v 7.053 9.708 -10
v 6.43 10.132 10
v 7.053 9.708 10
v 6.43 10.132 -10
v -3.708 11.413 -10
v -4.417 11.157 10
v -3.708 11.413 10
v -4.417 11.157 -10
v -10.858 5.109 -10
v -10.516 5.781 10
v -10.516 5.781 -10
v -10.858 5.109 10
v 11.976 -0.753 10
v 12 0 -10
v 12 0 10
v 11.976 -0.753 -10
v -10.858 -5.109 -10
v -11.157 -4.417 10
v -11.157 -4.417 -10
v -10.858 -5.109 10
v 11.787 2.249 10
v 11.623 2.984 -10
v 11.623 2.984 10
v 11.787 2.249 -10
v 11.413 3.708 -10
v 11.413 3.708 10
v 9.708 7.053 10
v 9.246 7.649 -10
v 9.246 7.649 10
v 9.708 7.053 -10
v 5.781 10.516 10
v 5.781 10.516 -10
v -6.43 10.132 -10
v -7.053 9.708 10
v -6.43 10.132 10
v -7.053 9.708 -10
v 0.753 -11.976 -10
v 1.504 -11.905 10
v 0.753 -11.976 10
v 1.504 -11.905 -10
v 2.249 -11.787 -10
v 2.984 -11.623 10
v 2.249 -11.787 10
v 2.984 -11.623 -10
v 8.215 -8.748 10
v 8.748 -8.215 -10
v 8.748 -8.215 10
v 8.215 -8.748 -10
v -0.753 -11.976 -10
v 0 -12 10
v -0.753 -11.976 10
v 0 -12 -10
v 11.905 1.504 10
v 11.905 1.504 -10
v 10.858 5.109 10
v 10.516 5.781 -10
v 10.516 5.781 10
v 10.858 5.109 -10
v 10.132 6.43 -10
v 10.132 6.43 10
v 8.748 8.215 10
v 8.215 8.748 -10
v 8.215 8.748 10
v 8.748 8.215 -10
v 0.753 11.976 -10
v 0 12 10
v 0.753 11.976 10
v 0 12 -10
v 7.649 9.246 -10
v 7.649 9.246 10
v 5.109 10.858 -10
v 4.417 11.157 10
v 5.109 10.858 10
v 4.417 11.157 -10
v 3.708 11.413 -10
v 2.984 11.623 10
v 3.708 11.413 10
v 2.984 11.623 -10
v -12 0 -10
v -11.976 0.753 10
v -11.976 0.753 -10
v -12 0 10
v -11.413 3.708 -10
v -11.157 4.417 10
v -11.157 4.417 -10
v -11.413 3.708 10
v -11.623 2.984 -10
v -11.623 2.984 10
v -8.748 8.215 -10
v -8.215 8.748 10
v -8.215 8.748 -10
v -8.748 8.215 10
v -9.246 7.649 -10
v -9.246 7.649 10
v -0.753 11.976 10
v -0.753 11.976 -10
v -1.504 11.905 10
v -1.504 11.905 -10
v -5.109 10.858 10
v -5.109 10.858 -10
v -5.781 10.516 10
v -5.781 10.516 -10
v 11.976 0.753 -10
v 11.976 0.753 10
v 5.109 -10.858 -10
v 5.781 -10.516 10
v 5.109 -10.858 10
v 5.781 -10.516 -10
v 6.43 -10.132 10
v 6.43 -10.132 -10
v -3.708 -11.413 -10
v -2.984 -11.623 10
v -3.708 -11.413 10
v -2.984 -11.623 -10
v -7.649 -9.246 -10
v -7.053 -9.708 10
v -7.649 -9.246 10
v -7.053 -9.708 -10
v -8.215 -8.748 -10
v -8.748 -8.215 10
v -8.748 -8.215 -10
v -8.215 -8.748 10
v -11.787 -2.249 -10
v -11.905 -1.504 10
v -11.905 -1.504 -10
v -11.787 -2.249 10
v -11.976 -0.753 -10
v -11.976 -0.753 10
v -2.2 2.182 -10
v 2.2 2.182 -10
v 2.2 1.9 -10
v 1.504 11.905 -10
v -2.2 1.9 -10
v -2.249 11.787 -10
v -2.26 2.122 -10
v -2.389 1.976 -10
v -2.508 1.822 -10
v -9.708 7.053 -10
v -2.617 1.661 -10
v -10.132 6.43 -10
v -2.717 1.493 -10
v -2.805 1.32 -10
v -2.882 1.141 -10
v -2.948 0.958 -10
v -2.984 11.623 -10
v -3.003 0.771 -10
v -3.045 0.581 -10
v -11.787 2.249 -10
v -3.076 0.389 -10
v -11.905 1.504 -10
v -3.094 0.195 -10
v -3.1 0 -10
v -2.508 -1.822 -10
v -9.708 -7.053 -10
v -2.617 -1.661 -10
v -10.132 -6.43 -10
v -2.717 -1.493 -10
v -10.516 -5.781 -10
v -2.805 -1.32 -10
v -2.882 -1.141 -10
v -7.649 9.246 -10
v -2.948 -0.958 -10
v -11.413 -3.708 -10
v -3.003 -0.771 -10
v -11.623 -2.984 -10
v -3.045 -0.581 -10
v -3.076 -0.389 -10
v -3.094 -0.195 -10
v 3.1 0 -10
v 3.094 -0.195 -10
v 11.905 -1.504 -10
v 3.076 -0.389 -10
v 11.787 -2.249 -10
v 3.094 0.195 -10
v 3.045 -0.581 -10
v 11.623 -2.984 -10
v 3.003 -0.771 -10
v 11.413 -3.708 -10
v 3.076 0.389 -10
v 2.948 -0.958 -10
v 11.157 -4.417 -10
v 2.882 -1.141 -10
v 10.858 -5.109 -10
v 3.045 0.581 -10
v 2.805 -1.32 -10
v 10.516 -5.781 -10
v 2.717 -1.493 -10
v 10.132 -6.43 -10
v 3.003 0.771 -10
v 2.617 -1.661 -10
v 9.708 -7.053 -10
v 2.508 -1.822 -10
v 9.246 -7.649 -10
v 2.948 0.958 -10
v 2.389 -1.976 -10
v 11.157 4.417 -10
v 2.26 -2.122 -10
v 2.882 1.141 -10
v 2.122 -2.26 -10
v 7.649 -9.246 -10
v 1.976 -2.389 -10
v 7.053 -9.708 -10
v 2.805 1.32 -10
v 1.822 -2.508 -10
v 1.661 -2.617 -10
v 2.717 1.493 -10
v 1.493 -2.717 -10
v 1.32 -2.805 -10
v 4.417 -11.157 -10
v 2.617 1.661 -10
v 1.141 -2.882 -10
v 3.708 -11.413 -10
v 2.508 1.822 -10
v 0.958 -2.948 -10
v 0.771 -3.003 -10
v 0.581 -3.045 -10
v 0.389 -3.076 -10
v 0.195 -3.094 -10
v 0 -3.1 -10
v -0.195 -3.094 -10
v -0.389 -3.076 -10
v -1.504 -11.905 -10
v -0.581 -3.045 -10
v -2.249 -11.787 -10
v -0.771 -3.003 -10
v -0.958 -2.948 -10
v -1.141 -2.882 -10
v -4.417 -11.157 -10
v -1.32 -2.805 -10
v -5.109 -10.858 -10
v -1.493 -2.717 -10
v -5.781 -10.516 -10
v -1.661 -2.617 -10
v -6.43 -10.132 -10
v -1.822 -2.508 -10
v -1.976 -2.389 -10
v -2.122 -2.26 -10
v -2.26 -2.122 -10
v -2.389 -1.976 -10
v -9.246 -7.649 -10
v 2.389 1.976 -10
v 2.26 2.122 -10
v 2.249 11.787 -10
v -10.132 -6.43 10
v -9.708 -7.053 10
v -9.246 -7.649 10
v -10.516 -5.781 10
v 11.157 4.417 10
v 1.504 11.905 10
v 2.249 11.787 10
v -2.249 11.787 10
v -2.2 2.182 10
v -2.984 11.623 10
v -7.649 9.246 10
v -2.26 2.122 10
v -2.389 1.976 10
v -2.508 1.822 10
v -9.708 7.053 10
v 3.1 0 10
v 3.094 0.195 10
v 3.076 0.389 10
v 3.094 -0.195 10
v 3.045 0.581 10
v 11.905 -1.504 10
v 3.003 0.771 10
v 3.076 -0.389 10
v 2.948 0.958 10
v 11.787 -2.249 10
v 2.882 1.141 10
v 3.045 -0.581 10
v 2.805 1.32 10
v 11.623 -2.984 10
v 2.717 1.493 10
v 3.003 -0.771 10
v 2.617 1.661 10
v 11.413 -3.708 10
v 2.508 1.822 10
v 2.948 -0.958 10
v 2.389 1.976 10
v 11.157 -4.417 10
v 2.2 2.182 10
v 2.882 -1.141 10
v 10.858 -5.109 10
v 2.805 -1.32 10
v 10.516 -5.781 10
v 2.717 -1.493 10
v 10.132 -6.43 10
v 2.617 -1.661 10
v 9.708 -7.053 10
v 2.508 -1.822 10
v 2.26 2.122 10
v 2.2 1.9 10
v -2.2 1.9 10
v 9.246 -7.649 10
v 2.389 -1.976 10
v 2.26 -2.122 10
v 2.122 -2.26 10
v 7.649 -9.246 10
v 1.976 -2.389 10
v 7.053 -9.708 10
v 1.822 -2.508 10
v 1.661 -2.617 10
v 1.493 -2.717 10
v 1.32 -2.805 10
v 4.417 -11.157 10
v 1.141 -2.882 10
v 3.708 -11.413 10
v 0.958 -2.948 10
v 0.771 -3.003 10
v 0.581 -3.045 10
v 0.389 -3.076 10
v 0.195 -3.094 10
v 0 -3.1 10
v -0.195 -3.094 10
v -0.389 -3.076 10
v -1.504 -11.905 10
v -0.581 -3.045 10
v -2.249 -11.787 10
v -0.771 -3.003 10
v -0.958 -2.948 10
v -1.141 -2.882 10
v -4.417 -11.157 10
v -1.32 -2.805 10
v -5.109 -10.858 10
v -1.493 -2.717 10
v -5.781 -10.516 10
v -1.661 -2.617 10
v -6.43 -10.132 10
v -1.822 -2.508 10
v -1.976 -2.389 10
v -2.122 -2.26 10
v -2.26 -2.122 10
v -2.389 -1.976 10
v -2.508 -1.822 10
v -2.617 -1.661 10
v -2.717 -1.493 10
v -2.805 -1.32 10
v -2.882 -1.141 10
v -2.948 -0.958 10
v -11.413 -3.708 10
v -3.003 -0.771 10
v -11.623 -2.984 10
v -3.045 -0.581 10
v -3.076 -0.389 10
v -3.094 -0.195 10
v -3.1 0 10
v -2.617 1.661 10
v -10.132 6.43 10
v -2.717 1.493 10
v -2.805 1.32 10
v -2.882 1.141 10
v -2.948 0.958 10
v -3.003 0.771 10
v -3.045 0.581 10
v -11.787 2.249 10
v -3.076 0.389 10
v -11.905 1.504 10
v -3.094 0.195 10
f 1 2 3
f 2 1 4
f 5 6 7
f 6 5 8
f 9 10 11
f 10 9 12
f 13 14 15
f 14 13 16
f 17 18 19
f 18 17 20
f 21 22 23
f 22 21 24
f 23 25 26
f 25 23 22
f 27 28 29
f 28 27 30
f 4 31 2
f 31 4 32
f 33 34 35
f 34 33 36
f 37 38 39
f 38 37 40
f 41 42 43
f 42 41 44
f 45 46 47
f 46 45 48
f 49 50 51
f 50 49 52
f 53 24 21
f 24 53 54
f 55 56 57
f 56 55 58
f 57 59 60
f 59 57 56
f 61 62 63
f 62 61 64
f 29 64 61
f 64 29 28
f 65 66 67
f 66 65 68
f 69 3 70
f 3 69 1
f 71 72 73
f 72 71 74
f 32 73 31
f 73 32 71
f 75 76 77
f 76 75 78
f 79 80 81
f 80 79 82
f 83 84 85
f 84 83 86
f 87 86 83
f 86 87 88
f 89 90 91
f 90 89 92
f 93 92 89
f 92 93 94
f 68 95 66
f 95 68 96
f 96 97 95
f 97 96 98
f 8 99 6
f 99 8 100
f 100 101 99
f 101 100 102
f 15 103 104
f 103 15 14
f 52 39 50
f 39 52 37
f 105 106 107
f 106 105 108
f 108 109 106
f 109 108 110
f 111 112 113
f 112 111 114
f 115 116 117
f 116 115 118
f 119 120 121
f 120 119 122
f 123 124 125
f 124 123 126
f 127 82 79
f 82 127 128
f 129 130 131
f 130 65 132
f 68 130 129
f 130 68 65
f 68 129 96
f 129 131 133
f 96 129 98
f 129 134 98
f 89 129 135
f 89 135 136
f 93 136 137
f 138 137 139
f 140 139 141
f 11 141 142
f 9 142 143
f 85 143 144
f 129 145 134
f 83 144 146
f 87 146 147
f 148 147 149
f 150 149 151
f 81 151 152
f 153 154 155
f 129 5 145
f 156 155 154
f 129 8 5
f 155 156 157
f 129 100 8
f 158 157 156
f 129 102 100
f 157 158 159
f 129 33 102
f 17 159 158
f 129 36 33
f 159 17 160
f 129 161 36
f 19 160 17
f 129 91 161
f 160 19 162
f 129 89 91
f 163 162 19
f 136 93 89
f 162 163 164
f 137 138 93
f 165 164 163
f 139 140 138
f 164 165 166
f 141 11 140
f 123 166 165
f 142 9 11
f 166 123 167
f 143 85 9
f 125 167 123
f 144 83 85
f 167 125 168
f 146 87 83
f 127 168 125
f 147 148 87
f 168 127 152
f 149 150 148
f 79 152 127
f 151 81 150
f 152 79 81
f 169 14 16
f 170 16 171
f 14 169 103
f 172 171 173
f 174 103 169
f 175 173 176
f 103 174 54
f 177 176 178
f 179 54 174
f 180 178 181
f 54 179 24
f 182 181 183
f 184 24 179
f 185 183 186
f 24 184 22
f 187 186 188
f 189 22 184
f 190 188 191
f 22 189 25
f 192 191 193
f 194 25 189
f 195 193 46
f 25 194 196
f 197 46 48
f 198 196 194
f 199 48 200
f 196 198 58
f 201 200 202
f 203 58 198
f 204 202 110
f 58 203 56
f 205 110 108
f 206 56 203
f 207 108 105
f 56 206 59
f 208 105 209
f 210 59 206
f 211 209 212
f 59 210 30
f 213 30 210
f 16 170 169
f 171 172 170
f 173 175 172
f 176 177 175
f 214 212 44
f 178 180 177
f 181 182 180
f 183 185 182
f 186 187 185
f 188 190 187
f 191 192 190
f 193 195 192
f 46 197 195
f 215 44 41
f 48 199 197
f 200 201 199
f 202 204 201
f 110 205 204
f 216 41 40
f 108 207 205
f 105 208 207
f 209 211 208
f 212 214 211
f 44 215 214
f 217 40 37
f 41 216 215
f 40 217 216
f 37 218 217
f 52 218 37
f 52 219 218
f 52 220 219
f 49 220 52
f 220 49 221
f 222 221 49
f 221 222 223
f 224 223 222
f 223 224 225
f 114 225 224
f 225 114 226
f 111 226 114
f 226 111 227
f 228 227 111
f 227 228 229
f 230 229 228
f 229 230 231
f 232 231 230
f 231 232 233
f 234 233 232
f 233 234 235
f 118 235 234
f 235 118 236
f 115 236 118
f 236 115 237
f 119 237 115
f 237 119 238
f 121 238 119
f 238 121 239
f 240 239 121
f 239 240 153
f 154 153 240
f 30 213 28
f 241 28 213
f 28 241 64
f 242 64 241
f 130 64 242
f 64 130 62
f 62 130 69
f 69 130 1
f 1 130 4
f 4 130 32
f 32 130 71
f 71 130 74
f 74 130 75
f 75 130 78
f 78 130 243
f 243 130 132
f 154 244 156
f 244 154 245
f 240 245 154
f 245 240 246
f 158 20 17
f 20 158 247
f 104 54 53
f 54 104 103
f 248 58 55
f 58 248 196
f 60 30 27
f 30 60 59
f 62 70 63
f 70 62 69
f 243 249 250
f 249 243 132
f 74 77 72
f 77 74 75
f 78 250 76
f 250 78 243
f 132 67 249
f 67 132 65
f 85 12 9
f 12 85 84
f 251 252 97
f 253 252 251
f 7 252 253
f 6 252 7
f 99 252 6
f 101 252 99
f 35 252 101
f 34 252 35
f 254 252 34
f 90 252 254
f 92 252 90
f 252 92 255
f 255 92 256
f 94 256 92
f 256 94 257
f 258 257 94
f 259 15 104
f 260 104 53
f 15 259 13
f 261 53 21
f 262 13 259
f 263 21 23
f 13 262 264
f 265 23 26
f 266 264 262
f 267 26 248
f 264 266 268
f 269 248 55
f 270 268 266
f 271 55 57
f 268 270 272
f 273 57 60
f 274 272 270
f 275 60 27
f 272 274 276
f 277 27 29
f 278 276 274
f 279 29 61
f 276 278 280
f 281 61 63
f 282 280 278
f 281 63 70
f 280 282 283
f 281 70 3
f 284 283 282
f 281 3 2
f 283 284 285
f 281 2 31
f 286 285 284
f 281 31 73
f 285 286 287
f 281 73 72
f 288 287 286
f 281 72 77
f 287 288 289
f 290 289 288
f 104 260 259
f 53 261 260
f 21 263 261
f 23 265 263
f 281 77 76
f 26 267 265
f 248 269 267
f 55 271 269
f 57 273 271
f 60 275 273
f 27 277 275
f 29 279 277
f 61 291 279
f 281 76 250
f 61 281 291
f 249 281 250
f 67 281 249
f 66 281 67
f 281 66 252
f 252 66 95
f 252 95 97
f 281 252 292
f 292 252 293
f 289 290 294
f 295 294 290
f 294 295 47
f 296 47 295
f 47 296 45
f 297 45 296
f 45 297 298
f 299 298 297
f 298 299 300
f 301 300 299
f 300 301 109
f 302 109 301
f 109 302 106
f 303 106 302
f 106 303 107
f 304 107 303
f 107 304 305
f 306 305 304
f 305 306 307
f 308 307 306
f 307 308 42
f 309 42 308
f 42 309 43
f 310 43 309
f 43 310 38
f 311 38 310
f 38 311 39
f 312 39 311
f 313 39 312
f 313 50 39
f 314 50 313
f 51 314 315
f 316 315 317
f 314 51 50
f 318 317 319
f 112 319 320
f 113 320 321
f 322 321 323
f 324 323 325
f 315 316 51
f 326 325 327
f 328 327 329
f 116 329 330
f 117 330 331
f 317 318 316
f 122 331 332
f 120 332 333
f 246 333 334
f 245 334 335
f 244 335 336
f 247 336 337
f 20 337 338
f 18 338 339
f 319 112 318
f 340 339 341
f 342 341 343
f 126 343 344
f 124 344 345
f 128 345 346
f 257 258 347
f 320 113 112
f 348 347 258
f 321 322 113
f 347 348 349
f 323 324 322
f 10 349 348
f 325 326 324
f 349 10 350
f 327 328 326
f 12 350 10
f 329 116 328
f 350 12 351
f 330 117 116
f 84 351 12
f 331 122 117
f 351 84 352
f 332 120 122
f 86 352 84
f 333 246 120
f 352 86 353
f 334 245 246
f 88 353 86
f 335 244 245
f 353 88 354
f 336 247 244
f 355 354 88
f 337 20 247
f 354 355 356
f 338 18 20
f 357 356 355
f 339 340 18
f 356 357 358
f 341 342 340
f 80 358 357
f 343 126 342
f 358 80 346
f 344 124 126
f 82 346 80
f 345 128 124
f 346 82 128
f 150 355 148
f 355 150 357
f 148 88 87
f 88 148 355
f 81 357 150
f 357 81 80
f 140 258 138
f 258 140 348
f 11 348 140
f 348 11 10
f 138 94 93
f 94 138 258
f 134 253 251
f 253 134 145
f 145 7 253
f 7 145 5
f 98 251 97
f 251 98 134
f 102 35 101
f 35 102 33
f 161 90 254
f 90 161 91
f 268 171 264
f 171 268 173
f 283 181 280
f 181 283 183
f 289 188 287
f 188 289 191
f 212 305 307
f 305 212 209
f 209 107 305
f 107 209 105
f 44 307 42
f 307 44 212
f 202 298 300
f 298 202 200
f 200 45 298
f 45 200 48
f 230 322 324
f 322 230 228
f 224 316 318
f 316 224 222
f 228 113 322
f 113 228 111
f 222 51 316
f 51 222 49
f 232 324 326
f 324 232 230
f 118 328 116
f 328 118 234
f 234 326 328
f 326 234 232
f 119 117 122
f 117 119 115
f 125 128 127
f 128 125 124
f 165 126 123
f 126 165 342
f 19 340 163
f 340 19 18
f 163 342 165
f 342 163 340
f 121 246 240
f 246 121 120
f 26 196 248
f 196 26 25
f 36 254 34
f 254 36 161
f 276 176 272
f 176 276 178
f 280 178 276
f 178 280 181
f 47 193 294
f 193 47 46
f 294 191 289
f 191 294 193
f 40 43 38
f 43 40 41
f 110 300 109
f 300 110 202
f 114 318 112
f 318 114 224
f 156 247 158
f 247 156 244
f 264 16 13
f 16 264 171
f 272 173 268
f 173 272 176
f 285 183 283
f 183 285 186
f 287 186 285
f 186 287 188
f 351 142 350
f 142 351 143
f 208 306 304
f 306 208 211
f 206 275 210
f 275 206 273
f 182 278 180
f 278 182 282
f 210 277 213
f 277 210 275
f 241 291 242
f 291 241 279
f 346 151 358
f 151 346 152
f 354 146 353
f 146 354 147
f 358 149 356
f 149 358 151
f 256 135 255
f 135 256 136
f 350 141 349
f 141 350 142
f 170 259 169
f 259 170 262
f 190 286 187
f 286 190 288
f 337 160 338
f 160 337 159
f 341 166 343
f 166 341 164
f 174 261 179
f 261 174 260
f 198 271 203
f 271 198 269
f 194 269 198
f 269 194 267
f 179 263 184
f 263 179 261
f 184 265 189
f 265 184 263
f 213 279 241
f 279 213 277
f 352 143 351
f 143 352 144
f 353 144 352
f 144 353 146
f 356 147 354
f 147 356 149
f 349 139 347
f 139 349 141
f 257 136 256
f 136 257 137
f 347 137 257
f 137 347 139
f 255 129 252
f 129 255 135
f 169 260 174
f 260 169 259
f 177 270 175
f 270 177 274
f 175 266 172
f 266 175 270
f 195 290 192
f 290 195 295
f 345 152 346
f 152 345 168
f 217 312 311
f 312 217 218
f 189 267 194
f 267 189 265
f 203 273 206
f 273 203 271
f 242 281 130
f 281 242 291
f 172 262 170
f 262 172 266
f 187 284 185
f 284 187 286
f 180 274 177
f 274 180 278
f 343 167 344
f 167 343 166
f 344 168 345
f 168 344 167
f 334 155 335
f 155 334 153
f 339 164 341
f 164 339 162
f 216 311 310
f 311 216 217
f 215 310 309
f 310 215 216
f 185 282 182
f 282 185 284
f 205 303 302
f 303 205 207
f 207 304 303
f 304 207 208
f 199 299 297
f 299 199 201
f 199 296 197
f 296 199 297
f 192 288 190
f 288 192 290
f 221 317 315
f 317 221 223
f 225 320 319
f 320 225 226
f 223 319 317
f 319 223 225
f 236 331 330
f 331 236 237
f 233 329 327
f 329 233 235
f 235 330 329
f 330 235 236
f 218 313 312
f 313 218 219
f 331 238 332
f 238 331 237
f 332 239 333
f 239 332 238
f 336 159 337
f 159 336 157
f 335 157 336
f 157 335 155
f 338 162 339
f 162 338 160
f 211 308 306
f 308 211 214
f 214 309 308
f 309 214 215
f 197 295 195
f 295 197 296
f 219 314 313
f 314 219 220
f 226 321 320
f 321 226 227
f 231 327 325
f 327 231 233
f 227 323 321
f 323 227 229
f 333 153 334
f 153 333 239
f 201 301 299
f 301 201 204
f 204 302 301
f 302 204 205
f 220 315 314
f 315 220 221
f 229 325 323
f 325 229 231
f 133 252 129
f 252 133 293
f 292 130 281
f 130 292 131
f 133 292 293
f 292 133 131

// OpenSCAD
$fn = 100;

union()
{
    difference()
    {
        cylinder(r = 24/2, h = 20, center=true);
       
        union()
        {
            
        cylinder(r = 6.2/2, h = 20,center=true);
        }
    }

      
}

 translate([0,3-0.5,0])
            {
                
                        cube([4.4,1.2, 20],center=true);
                        
                        //r = 10.81,h = 1.8);
                       
            }
